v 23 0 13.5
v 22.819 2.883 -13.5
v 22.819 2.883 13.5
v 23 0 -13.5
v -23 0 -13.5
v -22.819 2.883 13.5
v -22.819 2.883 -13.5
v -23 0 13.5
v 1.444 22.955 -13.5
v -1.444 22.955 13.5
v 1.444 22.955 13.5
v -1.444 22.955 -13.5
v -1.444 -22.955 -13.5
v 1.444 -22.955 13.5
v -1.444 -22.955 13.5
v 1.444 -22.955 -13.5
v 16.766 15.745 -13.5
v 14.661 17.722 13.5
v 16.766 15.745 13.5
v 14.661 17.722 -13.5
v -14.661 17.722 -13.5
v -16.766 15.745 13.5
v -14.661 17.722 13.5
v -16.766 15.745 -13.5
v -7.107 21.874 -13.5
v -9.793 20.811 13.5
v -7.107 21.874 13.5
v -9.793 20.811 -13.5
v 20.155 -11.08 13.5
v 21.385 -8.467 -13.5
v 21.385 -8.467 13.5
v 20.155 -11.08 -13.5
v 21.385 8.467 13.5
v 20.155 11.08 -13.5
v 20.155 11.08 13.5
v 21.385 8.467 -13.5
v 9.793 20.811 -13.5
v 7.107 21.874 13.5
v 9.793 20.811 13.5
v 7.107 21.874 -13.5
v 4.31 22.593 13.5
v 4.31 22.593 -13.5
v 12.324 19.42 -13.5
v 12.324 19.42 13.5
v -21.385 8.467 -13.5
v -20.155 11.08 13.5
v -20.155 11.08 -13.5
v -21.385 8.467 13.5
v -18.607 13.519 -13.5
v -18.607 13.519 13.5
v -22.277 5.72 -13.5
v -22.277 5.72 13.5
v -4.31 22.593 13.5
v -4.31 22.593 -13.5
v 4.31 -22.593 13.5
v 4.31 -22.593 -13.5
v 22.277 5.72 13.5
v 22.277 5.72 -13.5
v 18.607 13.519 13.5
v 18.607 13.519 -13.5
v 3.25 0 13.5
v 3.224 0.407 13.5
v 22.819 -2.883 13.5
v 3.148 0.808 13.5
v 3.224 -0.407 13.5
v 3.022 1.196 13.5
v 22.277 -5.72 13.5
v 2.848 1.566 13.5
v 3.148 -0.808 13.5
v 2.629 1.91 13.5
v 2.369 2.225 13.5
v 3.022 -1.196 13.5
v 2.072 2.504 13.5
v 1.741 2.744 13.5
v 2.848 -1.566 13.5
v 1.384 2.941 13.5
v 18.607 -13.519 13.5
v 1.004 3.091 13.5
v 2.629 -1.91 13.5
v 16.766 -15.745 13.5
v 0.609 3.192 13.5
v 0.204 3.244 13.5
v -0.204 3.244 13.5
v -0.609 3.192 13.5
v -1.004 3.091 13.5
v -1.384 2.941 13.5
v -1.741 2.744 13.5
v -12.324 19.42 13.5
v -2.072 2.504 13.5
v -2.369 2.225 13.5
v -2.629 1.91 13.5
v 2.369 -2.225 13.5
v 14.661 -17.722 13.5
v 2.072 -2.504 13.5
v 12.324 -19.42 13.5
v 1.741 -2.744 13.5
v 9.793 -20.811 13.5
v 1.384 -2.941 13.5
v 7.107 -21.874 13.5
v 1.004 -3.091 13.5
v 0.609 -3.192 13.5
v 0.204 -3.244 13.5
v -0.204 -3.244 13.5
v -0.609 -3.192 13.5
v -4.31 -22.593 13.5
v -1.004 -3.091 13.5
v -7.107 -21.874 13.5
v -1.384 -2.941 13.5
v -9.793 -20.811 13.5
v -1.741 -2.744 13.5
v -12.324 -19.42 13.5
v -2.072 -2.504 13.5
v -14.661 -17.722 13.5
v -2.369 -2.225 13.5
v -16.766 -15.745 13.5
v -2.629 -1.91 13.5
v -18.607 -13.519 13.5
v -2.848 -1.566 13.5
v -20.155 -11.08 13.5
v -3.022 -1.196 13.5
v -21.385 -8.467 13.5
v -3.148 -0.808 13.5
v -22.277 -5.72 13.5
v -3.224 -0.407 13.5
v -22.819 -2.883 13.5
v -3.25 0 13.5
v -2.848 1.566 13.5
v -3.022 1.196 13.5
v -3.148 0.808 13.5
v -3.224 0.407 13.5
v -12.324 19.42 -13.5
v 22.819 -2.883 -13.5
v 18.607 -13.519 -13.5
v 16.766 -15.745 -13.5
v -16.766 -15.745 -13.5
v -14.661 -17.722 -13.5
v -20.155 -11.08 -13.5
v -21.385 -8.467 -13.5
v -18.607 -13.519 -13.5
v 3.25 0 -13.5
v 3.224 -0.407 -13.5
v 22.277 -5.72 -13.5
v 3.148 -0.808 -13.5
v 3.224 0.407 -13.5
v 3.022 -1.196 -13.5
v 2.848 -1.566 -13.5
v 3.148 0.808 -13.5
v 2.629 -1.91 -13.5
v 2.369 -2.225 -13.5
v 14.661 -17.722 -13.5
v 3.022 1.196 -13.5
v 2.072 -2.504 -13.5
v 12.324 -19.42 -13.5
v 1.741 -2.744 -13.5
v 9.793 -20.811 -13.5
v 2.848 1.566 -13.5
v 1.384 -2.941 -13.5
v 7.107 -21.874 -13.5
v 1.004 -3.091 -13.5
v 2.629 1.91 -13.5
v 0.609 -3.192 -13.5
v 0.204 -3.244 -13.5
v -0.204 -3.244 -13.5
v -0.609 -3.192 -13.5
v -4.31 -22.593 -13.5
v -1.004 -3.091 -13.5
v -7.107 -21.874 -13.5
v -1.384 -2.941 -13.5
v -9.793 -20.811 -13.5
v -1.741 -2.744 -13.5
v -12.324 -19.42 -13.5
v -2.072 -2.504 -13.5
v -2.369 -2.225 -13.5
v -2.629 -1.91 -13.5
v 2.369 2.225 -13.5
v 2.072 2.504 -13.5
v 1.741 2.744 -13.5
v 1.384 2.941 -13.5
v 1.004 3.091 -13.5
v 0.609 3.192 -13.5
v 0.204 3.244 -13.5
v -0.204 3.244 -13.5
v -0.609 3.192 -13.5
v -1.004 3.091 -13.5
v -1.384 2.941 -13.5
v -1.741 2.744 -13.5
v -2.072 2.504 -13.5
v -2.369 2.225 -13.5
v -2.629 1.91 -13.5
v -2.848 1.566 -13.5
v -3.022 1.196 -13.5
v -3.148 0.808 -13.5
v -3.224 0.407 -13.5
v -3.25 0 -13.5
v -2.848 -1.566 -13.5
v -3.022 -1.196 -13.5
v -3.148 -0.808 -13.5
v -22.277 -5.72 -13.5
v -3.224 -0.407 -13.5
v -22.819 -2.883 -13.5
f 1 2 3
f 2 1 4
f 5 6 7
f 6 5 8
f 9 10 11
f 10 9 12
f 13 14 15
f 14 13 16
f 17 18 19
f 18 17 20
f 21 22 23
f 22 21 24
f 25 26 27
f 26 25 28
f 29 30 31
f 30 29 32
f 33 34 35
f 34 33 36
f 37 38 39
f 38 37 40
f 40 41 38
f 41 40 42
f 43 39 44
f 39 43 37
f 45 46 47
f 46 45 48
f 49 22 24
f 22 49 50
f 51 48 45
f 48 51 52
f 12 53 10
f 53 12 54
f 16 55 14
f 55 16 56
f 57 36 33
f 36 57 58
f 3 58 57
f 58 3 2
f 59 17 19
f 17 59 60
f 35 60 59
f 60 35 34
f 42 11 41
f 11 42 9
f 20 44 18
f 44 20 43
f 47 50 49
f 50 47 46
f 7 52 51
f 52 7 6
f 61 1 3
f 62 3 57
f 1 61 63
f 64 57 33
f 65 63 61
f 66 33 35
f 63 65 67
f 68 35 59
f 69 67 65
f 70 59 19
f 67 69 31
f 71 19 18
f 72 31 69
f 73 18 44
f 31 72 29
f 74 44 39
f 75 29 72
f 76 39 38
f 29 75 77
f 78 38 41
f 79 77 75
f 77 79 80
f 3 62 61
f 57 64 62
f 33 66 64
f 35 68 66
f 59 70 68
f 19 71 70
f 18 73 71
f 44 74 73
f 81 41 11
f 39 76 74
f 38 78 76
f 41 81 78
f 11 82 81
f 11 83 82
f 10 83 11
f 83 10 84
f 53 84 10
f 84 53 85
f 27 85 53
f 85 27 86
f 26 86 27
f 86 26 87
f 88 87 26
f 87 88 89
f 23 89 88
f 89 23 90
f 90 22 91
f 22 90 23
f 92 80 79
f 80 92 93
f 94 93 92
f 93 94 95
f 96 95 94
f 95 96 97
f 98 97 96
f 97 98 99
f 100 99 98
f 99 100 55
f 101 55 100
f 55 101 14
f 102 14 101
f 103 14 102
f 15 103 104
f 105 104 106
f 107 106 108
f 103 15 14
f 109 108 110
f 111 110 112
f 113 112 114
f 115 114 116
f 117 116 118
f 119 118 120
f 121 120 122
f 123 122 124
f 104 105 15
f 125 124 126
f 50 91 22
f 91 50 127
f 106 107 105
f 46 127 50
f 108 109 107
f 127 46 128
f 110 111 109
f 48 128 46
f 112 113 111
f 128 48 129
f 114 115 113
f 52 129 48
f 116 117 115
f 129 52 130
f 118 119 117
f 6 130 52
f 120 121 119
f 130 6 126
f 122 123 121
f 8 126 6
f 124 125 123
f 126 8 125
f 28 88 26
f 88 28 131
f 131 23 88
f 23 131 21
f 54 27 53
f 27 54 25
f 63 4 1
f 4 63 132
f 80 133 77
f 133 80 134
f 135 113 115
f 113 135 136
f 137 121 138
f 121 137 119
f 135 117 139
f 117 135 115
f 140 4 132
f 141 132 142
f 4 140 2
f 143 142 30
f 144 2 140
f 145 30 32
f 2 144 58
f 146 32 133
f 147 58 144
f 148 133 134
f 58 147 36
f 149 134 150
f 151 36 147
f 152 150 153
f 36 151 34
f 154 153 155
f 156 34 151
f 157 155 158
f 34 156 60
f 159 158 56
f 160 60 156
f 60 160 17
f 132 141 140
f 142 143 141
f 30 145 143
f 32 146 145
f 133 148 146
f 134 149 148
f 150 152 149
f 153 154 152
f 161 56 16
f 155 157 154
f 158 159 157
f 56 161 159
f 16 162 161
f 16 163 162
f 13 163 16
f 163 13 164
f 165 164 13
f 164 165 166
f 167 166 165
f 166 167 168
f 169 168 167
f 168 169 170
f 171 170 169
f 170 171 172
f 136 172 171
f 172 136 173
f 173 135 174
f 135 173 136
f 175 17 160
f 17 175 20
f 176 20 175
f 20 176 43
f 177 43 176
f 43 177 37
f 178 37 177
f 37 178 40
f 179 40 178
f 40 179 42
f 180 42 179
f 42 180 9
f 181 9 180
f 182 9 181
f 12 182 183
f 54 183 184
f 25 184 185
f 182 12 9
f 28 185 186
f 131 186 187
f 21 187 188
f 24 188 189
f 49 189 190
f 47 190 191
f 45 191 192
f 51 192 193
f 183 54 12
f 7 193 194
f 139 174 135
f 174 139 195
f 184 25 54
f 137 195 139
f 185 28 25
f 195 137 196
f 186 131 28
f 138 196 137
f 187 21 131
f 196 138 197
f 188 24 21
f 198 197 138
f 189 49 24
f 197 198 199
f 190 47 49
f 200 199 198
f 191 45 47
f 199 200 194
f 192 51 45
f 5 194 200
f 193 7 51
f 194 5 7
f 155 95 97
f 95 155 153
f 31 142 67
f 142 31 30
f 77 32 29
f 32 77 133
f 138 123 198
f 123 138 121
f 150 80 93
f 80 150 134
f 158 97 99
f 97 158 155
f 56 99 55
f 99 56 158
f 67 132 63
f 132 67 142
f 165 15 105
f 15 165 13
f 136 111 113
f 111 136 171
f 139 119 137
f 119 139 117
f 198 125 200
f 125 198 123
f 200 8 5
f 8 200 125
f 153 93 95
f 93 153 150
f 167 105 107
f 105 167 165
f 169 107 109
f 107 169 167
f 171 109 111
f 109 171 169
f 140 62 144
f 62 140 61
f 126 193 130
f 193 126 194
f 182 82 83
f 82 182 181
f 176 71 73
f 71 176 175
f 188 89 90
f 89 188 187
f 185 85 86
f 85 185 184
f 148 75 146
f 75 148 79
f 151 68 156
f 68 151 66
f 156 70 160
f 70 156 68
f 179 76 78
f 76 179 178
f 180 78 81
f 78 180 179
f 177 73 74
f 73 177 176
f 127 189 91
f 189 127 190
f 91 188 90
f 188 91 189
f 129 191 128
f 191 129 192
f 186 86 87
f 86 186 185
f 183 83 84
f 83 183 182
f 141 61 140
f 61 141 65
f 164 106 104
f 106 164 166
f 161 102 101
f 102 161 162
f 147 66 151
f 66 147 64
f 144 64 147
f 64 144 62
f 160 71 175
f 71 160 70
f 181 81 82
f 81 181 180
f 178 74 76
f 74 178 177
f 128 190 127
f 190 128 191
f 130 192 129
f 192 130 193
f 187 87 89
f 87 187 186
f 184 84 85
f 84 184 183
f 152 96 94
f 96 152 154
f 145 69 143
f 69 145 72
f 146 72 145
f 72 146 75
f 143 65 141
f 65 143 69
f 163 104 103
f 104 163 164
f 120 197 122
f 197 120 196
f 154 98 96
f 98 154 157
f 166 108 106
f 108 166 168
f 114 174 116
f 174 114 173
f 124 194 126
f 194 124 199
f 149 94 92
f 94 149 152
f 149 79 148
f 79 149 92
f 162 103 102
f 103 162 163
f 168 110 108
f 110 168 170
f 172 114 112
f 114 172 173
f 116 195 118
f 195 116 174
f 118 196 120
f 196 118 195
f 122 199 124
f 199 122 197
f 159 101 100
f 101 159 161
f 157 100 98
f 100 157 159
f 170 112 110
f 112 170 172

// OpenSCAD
$fn = 50;


difference() {
	union() {
		translate(v = [0, 0, -13.5000000000]) {
			cylinder(h = 27, r = 23.0000000000);
		}
	}
	union() {
		translate(v = [0, 0, -100.0000000000]) {
			cylinder(h = 200, r = 3.2500000000);
		}
	}
}
